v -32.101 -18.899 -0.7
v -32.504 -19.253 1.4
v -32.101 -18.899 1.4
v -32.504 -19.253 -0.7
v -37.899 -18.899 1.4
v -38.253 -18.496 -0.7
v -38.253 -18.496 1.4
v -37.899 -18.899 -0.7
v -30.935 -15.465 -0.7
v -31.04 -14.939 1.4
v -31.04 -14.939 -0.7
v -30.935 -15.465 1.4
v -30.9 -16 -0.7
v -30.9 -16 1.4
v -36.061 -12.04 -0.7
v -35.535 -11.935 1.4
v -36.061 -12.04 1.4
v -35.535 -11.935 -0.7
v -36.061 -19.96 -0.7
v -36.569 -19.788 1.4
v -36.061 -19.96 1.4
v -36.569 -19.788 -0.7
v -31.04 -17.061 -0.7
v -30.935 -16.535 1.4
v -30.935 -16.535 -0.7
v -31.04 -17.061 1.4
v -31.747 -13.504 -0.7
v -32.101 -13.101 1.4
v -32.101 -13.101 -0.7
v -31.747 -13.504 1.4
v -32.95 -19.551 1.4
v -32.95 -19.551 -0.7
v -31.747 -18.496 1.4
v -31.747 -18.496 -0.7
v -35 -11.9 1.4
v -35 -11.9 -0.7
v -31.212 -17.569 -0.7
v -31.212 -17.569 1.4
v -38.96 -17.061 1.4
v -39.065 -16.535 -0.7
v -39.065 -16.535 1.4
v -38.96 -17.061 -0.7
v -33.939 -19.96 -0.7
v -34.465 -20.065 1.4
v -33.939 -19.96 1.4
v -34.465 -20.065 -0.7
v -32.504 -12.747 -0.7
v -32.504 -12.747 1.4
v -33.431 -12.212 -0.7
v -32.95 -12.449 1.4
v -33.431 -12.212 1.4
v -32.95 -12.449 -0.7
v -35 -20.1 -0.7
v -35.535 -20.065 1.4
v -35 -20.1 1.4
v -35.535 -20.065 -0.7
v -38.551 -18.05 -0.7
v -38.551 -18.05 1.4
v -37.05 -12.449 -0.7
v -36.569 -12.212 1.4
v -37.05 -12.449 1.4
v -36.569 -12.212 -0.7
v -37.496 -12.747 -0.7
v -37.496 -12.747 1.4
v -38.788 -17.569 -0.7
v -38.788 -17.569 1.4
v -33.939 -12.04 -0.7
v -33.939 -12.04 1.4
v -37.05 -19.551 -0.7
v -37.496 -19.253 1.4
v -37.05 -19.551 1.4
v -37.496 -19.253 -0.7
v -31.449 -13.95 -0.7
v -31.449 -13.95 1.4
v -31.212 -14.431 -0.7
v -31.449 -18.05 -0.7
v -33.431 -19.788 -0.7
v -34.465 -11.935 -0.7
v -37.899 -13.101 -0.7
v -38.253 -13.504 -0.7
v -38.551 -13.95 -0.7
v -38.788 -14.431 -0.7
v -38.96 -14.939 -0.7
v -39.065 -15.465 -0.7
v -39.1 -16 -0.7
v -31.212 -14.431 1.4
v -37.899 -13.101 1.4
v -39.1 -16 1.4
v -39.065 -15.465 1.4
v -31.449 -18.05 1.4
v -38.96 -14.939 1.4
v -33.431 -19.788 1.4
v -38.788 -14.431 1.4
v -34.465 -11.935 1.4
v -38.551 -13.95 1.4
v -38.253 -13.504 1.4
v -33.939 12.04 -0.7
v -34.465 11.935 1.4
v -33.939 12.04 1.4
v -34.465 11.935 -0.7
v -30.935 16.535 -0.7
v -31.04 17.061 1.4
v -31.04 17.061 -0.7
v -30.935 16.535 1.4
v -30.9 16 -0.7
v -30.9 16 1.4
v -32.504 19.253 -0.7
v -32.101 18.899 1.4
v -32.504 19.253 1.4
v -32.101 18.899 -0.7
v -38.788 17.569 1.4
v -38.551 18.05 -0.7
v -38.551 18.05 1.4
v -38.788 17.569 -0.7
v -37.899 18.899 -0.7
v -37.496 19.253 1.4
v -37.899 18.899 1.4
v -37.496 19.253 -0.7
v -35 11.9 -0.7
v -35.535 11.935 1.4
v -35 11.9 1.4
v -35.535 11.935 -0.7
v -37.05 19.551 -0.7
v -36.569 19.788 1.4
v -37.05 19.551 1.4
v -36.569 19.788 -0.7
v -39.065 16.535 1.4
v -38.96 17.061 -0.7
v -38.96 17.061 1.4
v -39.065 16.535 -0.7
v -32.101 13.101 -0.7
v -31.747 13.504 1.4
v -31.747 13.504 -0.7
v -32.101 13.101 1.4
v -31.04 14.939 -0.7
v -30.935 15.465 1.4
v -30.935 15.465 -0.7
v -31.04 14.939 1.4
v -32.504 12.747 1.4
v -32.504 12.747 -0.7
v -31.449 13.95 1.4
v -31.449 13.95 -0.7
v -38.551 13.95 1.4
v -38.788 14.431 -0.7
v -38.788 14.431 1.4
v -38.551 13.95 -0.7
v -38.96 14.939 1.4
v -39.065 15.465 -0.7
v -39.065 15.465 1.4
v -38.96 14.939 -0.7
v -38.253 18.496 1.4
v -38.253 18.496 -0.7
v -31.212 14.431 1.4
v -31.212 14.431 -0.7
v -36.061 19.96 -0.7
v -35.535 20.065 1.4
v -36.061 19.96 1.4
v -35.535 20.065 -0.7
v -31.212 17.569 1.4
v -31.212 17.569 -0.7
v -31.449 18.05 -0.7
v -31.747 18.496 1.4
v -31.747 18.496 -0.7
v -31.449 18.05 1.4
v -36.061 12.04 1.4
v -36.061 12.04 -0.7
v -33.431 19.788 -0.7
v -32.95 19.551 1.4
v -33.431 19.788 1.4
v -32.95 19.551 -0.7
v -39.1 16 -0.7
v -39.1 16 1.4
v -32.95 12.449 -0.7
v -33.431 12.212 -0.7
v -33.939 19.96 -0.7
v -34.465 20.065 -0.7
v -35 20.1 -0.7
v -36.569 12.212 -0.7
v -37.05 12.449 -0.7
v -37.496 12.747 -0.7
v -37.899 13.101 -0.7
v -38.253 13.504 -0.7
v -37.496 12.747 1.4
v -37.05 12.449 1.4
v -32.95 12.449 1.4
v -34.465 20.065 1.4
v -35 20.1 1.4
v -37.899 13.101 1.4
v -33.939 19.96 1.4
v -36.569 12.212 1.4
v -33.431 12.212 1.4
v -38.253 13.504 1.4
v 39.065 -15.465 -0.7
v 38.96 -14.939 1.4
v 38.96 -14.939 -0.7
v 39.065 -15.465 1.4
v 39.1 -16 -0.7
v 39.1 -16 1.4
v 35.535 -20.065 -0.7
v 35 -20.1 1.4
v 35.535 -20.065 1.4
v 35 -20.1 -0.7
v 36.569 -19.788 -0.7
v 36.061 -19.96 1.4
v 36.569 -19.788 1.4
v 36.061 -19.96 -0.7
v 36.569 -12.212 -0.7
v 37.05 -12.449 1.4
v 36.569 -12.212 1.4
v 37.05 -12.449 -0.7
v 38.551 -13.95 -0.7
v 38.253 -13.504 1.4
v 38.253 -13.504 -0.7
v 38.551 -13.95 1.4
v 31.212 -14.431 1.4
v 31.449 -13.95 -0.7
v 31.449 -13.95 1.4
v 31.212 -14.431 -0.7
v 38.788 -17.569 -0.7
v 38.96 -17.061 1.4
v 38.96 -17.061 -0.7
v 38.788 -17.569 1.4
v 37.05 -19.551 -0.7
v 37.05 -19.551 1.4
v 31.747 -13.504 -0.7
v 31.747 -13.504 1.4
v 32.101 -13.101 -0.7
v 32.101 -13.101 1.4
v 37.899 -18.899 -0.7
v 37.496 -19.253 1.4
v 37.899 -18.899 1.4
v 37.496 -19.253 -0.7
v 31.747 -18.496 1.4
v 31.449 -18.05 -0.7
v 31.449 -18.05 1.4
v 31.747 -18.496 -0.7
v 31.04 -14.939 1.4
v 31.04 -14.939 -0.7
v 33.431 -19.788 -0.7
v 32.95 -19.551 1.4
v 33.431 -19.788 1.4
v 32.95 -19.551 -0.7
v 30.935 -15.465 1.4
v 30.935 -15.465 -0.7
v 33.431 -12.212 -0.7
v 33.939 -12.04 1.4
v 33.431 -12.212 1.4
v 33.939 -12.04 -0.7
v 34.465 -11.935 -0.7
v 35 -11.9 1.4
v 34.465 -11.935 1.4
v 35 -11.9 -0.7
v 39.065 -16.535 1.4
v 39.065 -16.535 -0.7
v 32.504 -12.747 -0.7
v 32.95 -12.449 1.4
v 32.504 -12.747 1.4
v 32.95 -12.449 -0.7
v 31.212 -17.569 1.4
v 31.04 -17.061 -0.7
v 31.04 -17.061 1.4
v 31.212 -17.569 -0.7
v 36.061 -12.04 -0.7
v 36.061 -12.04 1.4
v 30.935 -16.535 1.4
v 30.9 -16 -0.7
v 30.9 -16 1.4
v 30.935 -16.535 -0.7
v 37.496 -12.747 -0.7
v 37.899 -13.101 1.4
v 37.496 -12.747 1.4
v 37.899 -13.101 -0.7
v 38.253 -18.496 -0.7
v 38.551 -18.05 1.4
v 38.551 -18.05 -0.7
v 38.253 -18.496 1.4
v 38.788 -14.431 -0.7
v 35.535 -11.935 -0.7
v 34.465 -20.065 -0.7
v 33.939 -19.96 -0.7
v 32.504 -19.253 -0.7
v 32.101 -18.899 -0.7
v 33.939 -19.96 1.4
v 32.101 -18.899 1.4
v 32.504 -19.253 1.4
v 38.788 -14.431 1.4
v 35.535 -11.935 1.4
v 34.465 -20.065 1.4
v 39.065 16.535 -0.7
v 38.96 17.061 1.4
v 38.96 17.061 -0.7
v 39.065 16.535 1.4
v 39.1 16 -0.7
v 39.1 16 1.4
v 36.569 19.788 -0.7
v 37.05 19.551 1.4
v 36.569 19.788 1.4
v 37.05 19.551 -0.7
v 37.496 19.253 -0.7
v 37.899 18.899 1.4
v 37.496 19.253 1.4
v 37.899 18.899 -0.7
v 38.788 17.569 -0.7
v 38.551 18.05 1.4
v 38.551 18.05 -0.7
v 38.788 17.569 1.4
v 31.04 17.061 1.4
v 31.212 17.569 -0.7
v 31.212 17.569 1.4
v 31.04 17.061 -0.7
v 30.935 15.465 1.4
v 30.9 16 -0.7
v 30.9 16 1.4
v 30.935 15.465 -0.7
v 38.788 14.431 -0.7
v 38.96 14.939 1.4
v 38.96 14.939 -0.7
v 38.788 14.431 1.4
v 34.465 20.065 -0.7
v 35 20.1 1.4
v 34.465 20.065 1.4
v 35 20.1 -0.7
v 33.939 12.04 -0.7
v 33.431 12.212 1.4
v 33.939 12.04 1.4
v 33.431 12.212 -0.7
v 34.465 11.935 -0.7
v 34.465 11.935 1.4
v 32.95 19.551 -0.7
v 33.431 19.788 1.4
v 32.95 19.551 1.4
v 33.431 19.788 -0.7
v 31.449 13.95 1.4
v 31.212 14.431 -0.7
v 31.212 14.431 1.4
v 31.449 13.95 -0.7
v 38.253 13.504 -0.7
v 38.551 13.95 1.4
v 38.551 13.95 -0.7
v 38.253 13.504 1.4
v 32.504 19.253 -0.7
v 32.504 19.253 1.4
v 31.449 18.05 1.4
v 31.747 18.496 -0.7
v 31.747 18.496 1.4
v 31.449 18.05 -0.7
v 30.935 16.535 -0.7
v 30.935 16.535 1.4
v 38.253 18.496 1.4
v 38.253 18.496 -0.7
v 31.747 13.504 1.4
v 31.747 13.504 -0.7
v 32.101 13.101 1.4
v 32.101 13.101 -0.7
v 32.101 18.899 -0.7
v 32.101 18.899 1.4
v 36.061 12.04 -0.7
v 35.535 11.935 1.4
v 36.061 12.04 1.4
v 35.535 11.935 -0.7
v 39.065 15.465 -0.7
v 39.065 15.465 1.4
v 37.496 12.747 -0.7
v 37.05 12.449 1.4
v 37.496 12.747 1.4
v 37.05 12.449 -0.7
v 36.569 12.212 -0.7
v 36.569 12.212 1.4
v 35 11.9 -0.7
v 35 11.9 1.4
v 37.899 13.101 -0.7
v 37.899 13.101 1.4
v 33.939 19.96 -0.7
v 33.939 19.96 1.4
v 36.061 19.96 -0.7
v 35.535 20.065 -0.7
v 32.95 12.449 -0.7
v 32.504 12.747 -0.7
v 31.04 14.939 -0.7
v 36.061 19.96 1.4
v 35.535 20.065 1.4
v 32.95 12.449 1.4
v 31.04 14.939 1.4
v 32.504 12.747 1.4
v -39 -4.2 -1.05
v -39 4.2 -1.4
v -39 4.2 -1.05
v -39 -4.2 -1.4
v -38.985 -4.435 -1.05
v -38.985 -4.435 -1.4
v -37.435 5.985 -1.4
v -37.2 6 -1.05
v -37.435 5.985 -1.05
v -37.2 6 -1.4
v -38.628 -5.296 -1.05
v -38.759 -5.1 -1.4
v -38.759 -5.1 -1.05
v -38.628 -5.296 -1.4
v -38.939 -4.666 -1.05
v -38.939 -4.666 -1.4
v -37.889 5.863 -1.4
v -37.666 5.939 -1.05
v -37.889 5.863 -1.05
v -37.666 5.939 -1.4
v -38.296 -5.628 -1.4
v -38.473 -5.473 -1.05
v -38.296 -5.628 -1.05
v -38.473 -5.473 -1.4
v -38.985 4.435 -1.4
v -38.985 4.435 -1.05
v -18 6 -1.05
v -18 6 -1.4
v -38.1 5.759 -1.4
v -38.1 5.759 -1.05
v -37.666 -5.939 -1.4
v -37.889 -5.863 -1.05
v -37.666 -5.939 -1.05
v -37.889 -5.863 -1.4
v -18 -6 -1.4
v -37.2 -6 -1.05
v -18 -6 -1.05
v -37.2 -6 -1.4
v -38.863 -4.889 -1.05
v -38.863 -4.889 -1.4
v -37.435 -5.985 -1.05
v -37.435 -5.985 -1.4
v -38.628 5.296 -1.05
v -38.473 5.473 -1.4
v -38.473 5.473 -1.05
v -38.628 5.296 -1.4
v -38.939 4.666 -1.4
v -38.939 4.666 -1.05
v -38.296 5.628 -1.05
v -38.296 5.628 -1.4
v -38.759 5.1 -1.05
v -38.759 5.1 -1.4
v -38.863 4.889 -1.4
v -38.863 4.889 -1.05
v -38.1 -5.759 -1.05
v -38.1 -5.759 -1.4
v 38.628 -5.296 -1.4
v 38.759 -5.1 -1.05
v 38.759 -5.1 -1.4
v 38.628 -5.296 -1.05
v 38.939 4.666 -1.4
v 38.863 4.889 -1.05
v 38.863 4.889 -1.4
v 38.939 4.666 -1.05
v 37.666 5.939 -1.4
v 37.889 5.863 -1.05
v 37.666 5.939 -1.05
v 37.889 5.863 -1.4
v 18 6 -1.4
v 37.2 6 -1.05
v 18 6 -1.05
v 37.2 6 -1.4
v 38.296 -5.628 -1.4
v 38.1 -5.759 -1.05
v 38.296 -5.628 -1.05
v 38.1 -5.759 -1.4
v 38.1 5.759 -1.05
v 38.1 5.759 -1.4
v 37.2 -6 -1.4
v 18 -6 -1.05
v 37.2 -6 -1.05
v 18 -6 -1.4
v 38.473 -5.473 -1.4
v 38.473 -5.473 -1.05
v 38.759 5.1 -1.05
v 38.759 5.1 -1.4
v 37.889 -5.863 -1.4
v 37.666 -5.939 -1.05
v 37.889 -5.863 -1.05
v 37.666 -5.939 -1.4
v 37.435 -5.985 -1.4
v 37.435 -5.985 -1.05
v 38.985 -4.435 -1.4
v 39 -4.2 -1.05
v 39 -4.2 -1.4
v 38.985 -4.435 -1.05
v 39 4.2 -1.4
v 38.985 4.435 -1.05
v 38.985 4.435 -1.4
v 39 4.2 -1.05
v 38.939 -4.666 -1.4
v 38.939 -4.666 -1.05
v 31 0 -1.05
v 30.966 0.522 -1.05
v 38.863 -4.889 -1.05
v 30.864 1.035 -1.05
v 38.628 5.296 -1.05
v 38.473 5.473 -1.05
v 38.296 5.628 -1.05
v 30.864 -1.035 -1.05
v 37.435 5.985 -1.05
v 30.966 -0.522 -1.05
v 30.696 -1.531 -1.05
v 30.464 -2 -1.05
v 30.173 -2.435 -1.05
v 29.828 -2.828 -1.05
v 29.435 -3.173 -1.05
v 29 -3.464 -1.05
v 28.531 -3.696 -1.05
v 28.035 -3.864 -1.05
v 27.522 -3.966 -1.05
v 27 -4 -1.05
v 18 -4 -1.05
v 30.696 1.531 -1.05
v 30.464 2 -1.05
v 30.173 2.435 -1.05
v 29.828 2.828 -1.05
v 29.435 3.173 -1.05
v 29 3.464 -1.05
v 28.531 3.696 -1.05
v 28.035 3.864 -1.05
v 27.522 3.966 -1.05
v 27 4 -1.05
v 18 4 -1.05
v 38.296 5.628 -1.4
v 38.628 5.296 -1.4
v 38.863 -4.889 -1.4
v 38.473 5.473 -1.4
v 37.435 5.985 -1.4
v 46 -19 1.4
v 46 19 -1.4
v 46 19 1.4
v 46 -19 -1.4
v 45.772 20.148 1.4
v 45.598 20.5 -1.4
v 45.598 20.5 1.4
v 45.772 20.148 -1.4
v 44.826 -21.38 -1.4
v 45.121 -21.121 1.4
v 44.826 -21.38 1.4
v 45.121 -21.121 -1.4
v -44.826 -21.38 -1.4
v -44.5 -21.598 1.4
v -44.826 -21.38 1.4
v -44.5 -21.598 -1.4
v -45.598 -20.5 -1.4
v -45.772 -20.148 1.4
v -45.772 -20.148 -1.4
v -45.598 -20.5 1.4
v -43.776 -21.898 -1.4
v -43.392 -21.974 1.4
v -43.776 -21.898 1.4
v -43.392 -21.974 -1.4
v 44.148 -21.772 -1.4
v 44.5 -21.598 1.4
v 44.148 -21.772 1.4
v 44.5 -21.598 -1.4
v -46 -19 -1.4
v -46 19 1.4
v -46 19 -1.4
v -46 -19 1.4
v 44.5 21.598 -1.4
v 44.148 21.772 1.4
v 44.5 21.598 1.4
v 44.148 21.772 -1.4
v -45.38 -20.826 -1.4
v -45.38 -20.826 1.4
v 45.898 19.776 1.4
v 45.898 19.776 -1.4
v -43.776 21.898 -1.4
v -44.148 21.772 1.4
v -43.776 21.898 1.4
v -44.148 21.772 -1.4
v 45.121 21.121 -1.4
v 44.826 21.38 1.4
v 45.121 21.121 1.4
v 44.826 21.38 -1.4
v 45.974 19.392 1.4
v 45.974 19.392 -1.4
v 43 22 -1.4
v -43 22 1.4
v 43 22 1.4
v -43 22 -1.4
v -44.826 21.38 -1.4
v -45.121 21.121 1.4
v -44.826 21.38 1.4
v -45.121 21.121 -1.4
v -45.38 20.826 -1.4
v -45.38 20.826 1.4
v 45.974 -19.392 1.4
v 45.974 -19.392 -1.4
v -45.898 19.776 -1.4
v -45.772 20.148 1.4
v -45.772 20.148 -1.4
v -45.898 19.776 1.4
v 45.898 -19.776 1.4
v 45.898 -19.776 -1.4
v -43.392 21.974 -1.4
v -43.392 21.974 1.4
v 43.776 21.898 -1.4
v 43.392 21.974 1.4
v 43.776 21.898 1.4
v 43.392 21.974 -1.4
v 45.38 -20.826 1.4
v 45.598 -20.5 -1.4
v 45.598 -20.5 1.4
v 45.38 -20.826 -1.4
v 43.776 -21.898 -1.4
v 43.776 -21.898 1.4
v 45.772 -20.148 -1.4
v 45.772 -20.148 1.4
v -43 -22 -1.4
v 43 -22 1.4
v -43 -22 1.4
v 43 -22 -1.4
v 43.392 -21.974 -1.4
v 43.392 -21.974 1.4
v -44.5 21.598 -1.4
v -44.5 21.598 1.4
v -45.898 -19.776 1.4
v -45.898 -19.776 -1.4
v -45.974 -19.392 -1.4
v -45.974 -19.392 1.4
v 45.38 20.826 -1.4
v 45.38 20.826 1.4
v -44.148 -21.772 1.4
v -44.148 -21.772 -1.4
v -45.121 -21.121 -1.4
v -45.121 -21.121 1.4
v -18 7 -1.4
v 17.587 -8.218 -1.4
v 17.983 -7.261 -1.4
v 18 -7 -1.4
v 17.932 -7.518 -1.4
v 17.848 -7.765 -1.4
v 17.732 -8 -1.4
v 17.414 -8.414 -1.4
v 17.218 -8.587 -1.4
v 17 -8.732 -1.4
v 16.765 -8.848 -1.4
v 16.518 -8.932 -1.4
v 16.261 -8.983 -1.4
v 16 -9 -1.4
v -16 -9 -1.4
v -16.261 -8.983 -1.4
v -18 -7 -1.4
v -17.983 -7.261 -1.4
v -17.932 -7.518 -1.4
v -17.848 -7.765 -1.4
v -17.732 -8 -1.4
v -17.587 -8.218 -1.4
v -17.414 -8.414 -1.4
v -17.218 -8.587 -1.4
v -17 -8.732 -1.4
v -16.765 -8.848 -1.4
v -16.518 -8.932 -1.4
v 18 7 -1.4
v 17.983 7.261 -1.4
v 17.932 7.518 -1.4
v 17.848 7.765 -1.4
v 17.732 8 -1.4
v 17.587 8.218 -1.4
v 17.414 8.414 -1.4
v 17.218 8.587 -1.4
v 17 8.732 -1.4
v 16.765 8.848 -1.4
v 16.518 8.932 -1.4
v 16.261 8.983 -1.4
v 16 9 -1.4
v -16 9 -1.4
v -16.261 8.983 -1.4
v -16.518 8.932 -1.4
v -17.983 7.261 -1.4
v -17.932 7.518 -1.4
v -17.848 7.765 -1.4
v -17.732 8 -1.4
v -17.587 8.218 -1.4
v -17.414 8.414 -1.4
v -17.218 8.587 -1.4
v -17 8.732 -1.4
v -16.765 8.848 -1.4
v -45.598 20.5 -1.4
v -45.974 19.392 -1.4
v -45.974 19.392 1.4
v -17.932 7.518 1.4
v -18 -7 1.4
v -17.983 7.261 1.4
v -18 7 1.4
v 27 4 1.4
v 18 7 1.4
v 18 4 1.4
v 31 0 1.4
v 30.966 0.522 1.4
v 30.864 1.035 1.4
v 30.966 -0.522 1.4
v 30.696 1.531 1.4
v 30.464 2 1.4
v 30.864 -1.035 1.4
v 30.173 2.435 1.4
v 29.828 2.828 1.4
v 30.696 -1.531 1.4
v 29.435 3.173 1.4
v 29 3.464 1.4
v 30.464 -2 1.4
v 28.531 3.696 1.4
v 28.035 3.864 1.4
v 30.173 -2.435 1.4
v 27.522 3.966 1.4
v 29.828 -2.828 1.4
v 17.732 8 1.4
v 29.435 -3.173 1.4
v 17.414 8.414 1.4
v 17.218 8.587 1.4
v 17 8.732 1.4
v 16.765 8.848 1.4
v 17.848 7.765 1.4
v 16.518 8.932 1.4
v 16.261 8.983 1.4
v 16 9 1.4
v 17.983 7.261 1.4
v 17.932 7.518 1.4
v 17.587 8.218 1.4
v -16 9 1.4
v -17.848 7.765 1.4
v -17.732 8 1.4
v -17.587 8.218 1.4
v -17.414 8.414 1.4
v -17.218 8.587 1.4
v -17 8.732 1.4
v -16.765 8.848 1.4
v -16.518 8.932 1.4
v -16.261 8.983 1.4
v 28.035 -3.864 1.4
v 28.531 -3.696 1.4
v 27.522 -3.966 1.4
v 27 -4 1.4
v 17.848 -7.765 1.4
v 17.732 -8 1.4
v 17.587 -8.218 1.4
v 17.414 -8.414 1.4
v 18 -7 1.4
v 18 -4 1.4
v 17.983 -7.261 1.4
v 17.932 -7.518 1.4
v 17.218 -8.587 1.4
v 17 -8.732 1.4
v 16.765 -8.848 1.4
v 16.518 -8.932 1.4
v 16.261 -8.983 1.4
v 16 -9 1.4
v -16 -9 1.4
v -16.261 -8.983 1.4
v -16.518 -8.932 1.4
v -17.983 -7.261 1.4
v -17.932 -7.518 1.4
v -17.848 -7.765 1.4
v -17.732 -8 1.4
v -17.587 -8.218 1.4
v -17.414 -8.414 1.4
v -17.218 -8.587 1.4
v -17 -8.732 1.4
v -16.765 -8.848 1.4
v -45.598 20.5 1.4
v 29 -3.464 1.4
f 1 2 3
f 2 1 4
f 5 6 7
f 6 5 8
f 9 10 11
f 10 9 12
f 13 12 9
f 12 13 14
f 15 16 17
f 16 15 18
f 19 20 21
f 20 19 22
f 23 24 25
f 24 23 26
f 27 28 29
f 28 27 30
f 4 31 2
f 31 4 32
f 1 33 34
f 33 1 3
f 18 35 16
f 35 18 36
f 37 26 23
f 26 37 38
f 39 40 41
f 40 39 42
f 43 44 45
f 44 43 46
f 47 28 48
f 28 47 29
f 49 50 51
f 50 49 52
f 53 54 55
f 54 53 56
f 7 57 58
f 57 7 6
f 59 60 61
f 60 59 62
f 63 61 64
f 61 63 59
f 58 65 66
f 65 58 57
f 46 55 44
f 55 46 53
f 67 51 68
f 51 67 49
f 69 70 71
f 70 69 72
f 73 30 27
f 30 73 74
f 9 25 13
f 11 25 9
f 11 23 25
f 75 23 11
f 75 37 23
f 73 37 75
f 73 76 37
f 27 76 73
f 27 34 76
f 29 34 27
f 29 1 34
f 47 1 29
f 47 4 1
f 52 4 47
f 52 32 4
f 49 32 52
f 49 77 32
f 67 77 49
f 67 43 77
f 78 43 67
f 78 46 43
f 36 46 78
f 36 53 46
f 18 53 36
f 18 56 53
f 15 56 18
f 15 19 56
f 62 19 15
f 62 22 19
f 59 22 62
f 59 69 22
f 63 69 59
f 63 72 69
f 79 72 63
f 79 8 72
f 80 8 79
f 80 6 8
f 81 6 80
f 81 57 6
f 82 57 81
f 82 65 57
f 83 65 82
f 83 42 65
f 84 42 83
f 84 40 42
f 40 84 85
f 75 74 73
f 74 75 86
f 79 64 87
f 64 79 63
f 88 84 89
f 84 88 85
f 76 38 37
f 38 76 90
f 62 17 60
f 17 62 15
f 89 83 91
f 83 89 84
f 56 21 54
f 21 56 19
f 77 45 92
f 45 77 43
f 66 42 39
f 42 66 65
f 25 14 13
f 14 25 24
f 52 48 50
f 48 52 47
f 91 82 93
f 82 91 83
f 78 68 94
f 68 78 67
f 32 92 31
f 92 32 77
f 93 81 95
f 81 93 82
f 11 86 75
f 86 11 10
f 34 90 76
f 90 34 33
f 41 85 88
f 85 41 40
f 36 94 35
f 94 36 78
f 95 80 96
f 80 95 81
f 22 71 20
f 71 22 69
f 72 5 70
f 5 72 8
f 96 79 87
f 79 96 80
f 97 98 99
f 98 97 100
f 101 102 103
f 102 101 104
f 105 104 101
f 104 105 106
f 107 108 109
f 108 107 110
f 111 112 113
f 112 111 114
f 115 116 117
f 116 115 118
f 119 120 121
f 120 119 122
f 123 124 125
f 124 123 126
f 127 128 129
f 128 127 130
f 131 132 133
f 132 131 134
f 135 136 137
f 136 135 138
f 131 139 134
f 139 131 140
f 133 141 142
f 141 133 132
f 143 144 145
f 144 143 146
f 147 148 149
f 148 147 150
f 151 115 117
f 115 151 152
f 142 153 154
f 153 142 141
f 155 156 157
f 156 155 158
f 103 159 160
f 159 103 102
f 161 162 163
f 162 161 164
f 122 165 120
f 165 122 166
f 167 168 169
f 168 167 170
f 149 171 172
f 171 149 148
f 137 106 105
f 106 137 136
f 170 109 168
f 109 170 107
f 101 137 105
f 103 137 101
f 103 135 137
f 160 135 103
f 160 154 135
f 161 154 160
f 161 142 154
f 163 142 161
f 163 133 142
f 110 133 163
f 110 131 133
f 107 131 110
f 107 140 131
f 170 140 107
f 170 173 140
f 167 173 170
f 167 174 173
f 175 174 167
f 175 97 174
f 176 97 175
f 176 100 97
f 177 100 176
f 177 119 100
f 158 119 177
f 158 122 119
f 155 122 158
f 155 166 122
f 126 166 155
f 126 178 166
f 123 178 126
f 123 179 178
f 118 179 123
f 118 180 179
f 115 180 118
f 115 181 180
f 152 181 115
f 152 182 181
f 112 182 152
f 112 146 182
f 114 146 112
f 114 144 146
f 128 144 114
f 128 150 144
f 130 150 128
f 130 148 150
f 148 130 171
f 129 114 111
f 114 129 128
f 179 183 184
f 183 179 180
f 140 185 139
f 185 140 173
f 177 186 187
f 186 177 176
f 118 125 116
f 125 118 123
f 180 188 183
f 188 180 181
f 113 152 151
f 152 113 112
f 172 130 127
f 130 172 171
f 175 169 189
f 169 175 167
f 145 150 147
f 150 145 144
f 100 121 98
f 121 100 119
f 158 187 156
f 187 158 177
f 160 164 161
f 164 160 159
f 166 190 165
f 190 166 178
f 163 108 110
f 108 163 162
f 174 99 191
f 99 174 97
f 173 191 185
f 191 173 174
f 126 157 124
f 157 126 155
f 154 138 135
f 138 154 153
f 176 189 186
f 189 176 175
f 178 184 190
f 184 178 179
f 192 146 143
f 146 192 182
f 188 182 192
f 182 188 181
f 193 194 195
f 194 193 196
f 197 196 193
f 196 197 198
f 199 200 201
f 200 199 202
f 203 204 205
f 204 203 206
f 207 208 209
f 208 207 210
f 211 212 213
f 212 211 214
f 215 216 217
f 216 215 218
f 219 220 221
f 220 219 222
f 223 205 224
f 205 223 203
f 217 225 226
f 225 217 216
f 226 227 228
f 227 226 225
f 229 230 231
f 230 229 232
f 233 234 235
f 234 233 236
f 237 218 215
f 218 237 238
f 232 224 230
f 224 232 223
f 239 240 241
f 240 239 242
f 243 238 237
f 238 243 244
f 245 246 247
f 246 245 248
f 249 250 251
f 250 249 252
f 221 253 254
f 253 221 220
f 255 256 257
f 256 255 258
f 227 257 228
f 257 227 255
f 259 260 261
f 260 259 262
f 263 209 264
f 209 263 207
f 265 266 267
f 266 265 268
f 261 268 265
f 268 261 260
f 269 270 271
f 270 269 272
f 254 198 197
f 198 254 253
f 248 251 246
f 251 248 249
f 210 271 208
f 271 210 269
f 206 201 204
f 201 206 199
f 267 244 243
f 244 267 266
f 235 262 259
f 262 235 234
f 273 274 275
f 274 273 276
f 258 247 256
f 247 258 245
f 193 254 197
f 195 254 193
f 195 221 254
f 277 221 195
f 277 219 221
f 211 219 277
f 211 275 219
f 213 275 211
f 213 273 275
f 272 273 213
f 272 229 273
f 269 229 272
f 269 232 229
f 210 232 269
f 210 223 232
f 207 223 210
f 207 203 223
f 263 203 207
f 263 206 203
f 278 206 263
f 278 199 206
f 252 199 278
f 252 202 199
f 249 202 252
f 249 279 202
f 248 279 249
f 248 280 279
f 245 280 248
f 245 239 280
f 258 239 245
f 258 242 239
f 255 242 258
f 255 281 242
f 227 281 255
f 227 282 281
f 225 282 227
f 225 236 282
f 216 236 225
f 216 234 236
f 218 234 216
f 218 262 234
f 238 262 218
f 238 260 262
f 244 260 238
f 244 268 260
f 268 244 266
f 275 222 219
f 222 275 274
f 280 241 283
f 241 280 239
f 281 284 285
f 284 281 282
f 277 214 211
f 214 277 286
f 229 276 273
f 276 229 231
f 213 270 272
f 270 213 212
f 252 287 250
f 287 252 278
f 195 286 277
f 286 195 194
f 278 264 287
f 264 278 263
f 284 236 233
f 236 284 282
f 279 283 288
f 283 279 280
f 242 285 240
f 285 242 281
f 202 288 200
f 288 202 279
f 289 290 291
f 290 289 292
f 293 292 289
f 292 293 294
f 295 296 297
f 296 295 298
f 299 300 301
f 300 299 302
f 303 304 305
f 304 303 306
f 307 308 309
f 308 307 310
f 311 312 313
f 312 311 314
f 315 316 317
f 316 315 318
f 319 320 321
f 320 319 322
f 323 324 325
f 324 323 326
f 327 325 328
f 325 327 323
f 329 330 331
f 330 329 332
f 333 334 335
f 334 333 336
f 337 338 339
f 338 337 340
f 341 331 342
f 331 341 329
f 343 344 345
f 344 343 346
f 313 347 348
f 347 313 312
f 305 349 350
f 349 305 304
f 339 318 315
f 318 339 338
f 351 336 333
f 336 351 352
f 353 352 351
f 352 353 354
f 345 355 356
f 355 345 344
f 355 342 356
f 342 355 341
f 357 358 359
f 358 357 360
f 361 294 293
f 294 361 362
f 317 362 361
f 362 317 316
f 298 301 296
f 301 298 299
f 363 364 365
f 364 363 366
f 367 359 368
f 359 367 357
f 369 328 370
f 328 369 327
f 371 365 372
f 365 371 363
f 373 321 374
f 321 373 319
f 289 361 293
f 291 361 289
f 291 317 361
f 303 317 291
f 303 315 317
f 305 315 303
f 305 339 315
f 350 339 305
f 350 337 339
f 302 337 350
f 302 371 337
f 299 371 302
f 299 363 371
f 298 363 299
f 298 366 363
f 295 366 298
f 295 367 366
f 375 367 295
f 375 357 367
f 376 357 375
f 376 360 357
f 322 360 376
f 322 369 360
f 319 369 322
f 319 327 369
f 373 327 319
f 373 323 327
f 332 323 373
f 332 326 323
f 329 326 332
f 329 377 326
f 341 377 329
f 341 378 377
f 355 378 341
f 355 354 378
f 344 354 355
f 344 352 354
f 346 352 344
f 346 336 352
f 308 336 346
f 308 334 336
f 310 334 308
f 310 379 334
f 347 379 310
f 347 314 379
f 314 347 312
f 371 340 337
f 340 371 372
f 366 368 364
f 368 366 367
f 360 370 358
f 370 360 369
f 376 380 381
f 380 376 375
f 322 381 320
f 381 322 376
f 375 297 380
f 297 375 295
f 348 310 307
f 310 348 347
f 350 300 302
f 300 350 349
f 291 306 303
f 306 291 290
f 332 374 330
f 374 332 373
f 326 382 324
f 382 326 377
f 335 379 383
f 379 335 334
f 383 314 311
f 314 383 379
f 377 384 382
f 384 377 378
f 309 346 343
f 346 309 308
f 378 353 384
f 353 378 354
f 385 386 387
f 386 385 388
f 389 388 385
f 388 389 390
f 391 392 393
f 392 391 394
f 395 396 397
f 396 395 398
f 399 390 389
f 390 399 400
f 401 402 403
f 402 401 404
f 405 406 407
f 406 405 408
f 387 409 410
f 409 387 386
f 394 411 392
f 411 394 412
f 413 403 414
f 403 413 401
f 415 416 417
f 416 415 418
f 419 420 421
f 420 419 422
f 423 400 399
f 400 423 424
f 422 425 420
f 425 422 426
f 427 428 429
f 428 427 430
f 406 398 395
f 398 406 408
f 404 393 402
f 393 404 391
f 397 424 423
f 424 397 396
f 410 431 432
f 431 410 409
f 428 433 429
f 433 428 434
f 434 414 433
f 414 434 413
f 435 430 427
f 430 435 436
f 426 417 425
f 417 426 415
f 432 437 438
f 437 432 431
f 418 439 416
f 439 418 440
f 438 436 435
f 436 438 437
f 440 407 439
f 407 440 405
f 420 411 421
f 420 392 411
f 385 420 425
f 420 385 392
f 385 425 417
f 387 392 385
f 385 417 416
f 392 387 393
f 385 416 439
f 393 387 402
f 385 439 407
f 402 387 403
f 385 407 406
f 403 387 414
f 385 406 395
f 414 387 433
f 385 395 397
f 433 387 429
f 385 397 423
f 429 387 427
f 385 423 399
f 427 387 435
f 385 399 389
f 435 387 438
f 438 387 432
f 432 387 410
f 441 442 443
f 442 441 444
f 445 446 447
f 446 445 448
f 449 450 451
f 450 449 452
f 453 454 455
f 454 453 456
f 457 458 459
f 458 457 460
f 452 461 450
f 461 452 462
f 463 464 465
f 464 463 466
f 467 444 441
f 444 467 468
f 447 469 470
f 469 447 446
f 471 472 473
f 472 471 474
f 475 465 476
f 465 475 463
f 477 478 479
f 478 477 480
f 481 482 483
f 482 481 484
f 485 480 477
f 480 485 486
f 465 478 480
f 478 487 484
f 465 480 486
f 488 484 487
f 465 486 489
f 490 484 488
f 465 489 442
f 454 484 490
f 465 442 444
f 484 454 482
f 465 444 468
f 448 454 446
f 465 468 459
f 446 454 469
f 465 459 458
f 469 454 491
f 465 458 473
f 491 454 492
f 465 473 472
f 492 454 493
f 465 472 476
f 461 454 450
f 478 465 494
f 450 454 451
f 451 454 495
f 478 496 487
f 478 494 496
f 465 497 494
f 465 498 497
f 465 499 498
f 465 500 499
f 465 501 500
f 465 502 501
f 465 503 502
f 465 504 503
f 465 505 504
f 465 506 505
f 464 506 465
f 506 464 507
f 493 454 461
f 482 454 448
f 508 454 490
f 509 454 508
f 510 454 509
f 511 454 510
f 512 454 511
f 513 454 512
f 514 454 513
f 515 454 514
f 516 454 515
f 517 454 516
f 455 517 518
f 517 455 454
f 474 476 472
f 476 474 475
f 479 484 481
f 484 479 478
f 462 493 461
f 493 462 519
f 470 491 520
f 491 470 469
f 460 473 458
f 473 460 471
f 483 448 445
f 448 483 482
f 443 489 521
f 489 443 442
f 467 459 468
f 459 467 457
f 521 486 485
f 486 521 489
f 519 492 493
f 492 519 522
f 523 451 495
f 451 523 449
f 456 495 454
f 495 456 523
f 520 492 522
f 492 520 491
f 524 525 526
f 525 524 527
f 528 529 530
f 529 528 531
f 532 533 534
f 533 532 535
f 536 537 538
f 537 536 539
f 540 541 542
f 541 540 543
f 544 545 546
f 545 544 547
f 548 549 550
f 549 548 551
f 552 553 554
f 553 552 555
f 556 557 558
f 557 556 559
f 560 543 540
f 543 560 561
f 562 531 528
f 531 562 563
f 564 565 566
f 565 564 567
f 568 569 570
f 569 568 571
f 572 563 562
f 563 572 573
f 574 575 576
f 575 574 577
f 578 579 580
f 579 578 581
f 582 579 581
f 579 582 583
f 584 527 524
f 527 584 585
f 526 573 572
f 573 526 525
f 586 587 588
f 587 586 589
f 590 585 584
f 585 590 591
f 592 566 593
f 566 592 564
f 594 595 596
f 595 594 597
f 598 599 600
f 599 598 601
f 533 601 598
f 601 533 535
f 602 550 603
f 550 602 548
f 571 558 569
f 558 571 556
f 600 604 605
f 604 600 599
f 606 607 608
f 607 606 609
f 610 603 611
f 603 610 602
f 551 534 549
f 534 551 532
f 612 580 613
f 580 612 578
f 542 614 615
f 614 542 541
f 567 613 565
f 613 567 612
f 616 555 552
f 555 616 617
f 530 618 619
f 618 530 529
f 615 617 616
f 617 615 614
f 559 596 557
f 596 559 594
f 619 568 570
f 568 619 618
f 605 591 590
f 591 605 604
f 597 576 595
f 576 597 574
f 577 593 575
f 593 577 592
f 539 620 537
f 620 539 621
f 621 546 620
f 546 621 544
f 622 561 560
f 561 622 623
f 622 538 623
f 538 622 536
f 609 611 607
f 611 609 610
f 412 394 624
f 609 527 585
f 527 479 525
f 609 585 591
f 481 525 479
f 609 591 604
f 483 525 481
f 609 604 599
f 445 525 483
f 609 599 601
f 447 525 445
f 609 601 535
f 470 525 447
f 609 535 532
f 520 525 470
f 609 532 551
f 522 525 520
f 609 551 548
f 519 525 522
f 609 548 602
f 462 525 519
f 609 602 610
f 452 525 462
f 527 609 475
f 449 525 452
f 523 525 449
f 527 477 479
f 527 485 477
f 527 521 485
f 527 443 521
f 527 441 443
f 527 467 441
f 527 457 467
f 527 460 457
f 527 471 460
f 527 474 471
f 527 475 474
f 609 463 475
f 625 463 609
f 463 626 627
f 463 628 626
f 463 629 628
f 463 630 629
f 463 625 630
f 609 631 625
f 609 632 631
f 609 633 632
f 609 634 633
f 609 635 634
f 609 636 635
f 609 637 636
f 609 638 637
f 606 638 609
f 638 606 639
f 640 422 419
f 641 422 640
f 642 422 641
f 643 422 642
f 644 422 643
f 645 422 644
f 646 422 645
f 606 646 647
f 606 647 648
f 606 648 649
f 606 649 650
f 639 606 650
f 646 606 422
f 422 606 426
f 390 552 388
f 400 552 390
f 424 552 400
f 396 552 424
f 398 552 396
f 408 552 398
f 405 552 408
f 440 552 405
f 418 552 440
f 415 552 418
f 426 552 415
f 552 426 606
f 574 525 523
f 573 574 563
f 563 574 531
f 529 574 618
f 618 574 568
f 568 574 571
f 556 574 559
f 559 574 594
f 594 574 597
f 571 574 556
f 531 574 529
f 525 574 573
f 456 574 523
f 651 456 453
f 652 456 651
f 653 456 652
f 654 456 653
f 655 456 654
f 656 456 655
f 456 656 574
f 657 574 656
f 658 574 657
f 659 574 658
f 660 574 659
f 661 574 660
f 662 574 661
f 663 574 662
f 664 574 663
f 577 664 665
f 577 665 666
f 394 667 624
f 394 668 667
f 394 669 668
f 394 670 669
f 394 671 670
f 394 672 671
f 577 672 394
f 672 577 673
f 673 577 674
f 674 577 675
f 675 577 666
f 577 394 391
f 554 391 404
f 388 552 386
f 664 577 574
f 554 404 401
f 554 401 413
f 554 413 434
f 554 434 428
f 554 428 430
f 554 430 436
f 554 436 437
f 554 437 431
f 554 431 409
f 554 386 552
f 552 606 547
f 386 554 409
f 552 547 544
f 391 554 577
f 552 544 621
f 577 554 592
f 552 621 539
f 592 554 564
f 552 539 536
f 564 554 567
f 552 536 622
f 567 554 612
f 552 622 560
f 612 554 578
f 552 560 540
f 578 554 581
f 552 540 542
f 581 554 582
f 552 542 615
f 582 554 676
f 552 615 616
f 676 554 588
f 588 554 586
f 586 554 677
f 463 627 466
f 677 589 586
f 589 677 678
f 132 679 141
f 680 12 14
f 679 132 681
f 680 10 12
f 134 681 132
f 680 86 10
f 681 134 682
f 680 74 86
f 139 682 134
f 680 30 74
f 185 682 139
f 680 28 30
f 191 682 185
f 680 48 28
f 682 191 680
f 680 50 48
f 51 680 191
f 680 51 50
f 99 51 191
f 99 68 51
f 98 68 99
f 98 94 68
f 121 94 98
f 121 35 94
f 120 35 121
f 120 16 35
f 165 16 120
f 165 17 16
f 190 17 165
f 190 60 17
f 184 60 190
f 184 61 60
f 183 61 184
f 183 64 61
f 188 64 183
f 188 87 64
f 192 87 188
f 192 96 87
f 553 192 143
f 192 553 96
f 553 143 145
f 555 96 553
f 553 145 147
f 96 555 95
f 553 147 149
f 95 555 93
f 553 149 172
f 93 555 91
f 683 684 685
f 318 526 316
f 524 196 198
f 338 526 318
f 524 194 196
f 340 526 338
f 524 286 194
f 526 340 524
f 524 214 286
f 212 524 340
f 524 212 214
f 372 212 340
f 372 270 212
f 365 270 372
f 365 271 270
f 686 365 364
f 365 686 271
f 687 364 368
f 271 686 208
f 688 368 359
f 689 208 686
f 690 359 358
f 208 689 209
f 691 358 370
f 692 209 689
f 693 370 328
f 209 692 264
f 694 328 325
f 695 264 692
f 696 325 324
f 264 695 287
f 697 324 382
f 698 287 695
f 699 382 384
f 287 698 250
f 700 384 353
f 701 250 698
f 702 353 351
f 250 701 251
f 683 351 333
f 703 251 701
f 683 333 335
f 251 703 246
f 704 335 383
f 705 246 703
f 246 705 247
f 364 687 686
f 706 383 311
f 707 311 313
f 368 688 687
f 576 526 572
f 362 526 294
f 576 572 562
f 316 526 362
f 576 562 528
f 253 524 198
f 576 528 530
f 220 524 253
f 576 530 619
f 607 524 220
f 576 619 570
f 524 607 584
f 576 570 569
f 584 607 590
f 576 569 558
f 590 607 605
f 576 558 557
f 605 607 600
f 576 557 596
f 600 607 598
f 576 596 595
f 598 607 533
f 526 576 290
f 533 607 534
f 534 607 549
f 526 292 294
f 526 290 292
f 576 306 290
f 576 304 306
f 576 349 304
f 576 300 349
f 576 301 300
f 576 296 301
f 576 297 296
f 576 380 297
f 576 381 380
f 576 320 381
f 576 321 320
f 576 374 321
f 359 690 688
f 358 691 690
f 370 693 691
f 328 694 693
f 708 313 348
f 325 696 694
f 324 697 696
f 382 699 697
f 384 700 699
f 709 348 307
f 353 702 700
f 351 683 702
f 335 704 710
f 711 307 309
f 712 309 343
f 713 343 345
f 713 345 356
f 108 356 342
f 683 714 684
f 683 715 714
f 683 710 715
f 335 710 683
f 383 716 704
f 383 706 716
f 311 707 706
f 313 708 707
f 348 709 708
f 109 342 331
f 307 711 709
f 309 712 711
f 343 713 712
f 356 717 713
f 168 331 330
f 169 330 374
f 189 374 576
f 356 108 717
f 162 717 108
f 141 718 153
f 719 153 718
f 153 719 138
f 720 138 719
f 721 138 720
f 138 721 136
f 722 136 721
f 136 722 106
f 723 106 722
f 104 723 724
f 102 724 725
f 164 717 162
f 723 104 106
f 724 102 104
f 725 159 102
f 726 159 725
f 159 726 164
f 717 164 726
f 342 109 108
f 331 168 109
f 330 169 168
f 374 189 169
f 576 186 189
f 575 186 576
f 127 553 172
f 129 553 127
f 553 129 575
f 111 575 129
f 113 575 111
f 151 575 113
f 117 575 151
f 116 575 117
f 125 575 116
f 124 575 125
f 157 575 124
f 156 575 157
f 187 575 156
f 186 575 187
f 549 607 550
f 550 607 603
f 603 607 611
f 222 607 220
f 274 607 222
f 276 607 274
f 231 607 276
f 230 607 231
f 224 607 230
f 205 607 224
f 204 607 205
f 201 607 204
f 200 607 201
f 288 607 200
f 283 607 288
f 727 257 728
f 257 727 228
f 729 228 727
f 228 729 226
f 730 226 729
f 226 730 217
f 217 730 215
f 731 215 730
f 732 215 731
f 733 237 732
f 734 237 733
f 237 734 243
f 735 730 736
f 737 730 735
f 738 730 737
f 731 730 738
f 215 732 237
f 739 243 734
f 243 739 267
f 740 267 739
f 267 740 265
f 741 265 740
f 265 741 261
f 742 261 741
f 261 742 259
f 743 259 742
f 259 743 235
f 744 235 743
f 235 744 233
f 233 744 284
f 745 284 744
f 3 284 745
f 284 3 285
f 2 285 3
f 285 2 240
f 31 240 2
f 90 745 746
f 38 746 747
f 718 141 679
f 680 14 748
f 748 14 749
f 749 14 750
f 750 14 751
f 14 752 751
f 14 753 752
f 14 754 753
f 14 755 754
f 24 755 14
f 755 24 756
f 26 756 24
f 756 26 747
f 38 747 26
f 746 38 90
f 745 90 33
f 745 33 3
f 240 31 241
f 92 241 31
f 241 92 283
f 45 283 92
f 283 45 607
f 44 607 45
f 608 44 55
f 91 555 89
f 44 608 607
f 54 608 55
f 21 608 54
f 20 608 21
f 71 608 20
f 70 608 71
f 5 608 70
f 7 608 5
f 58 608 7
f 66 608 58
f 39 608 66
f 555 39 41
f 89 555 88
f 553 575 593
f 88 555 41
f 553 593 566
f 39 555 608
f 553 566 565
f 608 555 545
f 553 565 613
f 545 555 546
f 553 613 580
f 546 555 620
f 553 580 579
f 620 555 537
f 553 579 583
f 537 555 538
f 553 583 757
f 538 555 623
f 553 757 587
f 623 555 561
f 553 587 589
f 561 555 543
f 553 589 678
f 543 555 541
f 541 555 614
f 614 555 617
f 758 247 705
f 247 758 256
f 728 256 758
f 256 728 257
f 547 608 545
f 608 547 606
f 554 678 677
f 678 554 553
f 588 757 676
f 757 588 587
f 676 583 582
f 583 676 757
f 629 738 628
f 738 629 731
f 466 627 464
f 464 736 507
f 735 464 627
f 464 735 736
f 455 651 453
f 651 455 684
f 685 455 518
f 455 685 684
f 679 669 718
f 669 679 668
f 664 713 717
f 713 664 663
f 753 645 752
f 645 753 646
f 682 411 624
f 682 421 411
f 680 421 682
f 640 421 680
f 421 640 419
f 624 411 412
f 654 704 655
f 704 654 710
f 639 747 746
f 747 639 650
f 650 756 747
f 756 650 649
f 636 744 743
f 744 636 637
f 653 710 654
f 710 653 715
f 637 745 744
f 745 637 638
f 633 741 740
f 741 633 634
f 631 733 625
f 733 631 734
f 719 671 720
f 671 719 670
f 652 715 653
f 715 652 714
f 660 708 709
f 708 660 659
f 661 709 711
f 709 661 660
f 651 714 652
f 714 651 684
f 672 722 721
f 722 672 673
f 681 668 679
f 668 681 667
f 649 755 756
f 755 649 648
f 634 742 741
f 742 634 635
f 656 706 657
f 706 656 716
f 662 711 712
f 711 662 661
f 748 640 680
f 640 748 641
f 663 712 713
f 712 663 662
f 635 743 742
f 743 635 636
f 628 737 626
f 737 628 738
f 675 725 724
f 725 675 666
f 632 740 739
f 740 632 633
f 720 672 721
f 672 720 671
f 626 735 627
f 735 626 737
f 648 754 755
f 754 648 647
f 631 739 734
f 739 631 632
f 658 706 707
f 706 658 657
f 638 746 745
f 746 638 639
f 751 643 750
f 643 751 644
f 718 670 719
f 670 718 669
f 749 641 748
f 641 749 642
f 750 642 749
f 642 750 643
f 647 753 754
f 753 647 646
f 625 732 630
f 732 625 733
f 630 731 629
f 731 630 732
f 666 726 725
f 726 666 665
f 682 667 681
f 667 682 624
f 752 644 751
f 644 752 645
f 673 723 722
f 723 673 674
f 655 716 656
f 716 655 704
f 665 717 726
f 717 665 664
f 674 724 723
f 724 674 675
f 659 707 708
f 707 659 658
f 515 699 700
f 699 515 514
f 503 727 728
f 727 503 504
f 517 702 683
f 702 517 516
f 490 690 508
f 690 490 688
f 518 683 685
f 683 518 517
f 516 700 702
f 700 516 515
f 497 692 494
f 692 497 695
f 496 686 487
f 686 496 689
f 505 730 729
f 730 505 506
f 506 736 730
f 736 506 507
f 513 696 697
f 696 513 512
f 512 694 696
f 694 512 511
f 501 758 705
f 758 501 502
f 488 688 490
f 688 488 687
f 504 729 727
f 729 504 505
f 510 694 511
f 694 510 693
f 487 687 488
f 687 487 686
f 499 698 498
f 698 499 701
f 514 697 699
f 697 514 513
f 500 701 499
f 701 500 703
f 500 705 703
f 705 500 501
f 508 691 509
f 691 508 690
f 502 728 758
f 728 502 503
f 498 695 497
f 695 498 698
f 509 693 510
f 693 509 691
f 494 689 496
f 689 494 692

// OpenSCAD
/*
  Q8bot robot-side magnetic adapter plate

  This thin plate is taped to the robot body and provides the matching magnetic
  targets for the CM5-NANO-B task-module mount. It avoids relying on the Q8bot
  plastic frame itself being magnetic or having solid material under every
  task-module magnet.

  Orientation: X is robot length, Y is robot width, Z is height.
  Print orientation: flat side on the bed.
*/

$fn = 48;
eps = 0.12;

// Keep this narrow enough for the robot body, but wide enough to cover the
// task-module magnet pattern.
adapter_len = 92;
adapter_w = 44;
adapter_t = 2.8;
corner_r = 3.0;

// Must match q8bot_cm5_nano_b_5v5a_pack_mount.scad.
magnet_d = 8.2;
magnet_depth = 2.1;
magnet_x_spacing = 70;
magnet_y_spacing = 32;

// Optional center clearance so USB/ribbon wires can still pass through between
// robot and task module.
center_window_len = 36;
center_window_w = 18;
front_cable_slot_x = 18;
front_cable_slot_len = 26;
front_cable_slot_w = 8;

// Shallow underside tape pockets leave a raised rim so tape thickness is easier
// to manage. Set tape_pocket_depth = 0 if you want a completely flat underside.
tape_pocket_depth = 0.35;
tape_pad_len = 34;
tape_pad_w = 12;
tape_pad_x_spacing = 44;

module rounded_box(size, r) {
  x = size[0];
  y = size[1];
  z = size[2];
  hull() {
    for (sx = [-1, 1], sy = [-1, 1]) {
      translate([sx * (x / 2 - r), sy * (y / 2 - r), 0])
        cylinder(h = z, r = r, center = true);
    }
  }
}

module slot(len, w, h) {
  hull() {
    translate([-len / 2 + w / 2, 0, 0])
      cylinder(h = h, r = w / 2, center = true);
    translate([ len / 2 - w / 2, 0, 0])
      cylinder(h = h, r = w / 2, center = true);
  }
}

module magnet_pockets_from_top() {
  for (x = [-magnet_x_spacing / 2, magnet_x_spacing / 2],
       y = [-magnet_y_spacing / 2, magnet_y_spacing / 2]) {
    translate([x, y, adapter_t / 2 - magnet_depth / 2 + eps])
      cylinder(h = magnet_depth + 2 * eps, r = magnet_d / 2, center = true);
  }
}

module underside_tape_pockets() {
  if (tape_pocket_depth > 0) {
    for (x = [-tape_pad_x_spacing / 2, tape_pad_x_spacing / 2]) {
      translate([x, 0, -adapter_t / 2 + tape_pocket_depth / 2 - eps])
        rounded_box([tape_pad_len, tape_pad_w, tape_pocket_depth + 2 * eps], 1.8);
    }
  }
}

module adapter_plate() {
  difference() {
    rounded_box([adapter_len, adapter_w, adapter_t], corner_r);

    // Matching top pockets for 8 x 2 mm magnets, steel disks, or washers.
    magnet_pockets_from_top();

    // Cable clearance roughly matches the task-module underside windows.
    translate([0, 0, 0])
      rounded_box([center_window_len, center_window_w, adapter_t + 0.6], 2.0);

    translate([front_cable_slot_x, 0, 0])
      slot(front_cable_slot_len, front_cable_slot_w, adapter_t + 0.6);

    underside_tape_pockets();
  }
}

adapter_plate();
